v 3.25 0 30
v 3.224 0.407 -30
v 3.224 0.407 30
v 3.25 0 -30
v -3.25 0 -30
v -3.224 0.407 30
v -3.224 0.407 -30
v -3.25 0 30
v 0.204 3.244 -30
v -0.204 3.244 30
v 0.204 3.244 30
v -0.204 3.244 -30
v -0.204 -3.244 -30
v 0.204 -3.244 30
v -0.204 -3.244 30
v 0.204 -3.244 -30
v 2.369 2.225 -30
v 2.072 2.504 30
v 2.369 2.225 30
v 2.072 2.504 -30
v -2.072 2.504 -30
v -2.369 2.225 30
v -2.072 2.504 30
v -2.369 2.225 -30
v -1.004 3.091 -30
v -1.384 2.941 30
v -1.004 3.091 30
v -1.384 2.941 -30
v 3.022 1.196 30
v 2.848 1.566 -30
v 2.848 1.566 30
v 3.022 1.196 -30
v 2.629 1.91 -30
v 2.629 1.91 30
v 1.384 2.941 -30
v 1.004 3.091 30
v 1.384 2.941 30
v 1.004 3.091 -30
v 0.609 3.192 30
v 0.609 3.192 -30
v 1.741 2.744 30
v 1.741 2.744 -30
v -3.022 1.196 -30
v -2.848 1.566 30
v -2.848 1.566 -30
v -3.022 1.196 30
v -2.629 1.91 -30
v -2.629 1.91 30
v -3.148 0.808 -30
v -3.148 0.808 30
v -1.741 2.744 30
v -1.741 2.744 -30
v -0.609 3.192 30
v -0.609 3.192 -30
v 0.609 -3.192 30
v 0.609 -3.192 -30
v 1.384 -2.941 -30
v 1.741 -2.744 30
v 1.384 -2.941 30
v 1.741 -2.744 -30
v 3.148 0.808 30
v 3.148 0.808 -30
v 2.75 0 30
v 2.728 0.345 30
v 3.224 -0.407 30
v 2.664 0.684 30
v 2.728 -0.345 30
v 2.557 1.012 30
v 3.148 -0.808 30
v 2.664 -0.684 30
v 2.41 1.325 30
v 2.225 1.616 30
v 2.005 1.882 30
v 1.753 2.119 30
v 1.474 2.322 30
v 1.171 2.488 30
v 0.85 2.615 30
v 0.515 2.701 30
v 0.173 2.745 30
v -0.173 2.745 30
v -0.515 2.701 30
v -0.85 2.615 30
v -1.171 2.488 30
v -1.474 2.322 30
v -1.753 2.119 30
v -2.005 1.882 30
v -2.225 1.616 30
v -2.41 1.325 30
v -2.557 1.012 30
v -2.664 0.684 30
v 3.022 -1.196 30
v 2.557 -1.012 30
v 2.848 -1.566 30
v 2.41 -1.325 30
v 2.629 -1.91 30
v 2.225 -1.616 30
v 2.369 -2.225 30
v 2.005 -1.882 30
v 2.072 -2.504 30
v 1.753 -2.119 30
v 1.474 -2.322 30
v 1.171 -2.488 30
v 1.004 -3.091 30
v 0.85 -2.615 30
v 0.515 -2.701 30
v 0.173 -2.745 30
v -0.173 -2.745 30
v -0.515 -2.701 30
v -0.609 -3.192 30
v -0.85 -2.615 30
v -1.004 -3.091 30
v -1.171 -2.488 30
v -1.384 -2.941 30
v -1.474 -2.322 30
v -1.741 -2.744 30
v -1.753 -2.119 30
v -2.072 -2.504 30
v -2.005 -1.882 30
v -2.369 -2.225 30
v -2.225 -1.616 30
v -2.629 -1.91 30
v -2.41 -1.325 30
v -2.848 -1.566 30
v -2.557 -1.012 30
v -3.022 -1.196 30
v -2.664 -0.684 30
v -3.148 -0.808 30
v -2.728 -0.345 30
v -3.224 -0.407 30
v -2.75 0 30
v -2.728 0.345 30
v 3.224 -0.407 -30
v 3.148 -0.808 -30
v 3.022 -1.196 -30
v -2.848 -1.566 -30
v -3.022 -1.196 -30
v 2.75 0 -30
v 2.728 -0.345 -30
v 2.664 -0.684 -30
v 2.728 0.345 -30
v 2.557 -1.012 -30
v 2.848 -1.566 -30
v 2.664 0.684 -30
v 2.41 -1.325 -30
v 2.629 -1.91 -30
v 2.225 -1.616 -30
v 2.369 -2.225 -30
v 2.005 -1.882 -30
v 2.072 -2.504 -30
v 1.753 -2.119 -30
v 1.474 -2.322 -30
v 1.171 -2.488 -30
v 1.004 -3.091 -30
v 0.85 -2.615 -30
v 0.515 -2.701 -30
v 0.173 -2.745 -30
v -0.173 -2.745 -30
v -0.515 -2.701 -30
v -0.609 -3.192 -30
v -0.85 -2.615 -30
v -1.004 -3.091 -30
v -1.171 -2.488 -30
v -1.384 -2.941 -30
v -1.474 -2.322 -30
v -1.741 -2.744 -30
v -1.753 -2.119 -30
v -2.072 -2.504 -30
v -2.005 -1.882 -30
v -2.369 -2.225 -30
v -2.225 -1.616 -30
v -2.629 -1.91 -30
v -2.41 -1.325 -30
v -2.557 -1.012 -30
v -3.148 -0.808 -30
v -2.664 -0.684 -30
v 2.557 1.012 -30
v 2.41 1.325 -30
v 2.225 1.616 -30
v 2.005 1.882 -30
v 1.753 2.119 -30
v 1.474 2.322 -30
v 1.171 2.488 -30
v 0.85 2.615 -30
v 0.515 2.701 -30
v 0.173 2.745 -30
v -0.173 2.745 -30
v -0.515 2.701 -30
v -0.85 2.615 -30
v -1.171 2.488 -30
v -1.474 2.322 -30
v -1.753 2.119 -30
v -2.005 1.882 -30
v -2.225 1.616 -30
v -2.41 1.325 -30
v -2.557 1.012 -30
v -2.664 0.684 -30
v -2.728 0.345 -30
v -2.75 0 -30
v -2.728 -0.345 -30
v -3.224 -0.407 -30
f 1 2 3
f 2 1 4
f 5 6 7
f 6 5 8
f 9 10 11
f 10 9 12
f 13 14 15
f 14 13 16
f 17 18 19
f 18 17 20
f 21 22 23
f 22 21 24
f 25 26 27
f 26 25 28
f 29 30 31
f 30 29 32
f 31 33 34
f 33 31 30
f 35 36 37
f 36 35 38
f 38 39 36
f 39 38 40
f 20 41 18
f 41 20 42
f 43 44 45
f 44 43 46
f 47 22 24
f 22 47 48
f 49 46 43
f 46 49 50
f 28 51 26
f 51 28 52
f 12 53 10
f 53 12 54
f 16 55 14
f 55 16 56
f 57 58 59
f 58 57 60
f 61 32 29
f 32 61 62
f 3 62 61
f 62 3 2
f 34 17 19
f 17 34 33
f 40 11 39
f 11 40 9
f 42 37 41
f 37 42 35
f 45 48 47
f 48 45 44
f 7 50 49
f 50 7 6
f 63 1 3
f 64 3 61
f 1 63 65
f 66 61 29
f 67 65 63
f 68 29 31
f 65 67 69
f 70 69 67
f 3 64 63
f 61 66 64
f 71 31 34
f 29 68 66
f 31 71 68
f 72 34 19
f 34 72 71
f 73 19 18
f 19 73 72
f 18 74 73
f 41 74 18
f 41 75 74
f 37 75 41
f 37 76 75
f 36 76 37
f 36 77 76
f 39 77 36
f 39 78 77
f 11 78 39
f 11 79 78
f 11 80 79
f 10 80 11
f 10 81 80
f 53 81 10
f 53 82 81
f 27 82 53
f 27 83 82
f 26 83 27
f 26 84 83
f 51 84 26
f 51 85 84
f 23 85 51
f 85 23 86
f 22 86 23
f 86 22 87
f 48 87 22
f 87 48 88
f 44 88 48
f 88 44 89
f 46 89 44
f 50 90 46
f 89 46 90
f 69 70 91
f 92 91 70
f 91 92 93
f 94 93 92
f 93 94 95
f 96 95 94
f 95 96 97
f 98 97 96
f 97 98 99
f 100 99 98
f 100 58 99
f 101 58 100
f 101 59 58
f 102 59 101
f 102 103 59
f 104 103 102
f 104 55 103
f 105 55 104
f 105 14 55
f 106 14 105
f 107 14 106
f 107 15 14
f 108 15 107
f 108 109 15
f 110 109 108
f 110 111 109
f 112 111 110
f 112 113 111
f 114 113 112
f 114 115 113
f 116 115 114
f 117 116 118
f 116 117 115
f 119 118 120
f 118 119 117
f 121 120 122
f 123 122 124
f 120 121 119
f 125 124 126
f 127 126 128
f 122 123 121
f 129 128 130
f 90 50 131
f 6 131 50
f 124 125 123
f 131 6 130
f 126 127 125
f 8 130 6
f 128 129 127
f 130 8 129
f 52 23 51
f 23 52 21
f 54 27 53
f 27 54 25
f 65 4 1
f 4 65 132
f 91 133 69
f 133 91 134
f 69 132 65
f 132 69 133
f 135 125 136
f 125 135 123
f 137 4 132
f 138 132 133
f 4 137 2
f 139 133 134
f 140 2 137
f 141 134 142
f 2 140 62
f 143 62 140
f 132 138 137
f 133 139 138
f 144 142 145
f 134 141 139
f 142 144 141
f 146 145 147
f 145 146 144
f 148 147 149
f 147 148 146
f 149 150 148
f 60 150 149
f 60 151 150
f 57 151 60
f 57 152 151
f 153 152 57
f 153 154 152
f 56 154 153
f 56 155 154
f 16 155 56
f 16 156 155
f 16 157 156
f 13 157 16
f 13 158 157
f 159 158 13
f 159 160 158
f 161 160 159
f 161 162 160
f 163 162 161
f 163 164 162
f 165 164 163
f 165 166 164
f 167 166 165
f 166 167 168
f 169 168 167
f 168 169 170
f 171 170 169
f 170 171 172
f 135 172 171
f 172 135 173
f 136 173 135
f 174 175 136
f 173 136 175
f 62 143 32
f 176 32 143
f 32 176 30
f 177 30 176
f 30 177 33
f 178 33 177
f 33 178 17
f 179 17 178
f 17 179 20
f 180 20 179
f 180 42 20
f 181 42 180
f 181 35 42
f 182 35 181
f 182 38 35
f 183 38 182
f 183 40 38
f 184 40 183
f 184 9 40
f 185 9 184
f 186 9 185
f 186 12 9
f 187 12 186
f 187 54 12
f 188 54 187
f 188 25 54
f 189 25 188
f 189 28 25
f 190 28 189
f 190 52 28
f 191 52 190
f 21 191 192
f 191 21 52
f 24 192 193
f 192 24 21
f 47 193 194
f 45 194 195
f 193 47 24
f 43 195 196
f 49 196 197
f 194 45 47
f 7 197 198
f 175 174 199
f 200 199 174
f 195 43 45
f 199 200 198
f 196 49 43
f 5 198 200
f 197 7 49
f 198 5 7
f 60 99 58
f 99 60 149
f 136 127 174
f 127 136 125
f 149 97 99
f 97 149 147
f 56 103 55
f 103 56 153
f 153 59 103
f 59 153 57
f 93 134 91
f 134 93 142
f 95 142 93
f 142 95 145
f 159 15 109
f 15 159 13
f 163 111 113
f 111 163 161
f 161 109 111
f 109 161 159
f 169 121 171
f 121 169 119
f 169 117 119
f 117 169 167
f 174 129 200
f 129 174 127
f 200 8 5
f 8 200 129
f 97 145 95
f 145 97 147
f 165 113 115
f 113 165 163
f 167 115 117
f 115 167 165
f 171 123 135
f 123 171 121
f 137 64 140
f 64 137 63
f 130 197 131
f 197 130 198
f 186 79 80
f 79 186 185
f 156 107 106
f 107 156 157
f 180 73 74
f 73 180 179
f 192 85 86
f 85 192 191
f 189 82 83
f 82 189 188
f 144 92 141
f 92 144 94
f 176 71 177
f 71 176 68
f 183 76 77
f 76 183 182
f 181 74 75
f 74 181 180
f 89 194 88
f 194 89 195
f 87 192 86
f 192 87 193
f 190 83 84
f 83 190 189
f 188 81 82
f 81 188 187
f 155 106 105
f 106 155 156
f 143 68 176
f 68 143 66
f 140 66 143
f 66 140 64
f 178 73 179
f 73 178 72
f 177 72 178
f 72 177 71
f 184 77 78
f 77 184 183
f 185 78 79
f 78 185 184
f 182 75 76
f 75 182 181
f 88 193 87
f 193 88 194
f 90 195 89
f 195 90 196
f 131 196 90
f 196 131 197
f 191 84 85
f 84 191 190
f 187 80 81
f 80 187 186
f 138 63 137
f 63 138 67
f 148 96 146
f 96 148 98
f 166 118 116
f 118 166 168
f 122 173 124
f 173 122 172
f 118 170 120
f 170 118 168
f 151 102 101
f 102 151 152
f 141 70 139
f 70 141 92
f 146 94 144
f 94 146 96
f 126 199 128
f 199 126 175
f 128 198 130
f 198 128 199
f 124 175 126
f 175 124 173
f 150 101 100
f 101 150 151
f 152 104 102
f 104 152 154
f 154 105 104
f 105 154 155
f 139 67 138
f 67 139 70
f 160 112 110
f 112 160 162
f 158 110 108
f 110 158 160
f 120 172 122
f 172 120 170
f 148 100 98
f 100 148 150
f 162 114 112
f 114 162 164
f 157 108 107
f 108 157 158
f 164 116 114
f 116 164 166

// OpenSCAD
$fn = 50;


difference() {
	union() {
		translate(v = [0, 0, -30.0000000000]) {
			cylinder(h = 60, r = 3.2500000000);
		}
	}
	union() {
		translate(v = [0, 0, -100.0000000000]) {
			cylinder(h = 200, r = 2.7500000000);
		}
	}
}
